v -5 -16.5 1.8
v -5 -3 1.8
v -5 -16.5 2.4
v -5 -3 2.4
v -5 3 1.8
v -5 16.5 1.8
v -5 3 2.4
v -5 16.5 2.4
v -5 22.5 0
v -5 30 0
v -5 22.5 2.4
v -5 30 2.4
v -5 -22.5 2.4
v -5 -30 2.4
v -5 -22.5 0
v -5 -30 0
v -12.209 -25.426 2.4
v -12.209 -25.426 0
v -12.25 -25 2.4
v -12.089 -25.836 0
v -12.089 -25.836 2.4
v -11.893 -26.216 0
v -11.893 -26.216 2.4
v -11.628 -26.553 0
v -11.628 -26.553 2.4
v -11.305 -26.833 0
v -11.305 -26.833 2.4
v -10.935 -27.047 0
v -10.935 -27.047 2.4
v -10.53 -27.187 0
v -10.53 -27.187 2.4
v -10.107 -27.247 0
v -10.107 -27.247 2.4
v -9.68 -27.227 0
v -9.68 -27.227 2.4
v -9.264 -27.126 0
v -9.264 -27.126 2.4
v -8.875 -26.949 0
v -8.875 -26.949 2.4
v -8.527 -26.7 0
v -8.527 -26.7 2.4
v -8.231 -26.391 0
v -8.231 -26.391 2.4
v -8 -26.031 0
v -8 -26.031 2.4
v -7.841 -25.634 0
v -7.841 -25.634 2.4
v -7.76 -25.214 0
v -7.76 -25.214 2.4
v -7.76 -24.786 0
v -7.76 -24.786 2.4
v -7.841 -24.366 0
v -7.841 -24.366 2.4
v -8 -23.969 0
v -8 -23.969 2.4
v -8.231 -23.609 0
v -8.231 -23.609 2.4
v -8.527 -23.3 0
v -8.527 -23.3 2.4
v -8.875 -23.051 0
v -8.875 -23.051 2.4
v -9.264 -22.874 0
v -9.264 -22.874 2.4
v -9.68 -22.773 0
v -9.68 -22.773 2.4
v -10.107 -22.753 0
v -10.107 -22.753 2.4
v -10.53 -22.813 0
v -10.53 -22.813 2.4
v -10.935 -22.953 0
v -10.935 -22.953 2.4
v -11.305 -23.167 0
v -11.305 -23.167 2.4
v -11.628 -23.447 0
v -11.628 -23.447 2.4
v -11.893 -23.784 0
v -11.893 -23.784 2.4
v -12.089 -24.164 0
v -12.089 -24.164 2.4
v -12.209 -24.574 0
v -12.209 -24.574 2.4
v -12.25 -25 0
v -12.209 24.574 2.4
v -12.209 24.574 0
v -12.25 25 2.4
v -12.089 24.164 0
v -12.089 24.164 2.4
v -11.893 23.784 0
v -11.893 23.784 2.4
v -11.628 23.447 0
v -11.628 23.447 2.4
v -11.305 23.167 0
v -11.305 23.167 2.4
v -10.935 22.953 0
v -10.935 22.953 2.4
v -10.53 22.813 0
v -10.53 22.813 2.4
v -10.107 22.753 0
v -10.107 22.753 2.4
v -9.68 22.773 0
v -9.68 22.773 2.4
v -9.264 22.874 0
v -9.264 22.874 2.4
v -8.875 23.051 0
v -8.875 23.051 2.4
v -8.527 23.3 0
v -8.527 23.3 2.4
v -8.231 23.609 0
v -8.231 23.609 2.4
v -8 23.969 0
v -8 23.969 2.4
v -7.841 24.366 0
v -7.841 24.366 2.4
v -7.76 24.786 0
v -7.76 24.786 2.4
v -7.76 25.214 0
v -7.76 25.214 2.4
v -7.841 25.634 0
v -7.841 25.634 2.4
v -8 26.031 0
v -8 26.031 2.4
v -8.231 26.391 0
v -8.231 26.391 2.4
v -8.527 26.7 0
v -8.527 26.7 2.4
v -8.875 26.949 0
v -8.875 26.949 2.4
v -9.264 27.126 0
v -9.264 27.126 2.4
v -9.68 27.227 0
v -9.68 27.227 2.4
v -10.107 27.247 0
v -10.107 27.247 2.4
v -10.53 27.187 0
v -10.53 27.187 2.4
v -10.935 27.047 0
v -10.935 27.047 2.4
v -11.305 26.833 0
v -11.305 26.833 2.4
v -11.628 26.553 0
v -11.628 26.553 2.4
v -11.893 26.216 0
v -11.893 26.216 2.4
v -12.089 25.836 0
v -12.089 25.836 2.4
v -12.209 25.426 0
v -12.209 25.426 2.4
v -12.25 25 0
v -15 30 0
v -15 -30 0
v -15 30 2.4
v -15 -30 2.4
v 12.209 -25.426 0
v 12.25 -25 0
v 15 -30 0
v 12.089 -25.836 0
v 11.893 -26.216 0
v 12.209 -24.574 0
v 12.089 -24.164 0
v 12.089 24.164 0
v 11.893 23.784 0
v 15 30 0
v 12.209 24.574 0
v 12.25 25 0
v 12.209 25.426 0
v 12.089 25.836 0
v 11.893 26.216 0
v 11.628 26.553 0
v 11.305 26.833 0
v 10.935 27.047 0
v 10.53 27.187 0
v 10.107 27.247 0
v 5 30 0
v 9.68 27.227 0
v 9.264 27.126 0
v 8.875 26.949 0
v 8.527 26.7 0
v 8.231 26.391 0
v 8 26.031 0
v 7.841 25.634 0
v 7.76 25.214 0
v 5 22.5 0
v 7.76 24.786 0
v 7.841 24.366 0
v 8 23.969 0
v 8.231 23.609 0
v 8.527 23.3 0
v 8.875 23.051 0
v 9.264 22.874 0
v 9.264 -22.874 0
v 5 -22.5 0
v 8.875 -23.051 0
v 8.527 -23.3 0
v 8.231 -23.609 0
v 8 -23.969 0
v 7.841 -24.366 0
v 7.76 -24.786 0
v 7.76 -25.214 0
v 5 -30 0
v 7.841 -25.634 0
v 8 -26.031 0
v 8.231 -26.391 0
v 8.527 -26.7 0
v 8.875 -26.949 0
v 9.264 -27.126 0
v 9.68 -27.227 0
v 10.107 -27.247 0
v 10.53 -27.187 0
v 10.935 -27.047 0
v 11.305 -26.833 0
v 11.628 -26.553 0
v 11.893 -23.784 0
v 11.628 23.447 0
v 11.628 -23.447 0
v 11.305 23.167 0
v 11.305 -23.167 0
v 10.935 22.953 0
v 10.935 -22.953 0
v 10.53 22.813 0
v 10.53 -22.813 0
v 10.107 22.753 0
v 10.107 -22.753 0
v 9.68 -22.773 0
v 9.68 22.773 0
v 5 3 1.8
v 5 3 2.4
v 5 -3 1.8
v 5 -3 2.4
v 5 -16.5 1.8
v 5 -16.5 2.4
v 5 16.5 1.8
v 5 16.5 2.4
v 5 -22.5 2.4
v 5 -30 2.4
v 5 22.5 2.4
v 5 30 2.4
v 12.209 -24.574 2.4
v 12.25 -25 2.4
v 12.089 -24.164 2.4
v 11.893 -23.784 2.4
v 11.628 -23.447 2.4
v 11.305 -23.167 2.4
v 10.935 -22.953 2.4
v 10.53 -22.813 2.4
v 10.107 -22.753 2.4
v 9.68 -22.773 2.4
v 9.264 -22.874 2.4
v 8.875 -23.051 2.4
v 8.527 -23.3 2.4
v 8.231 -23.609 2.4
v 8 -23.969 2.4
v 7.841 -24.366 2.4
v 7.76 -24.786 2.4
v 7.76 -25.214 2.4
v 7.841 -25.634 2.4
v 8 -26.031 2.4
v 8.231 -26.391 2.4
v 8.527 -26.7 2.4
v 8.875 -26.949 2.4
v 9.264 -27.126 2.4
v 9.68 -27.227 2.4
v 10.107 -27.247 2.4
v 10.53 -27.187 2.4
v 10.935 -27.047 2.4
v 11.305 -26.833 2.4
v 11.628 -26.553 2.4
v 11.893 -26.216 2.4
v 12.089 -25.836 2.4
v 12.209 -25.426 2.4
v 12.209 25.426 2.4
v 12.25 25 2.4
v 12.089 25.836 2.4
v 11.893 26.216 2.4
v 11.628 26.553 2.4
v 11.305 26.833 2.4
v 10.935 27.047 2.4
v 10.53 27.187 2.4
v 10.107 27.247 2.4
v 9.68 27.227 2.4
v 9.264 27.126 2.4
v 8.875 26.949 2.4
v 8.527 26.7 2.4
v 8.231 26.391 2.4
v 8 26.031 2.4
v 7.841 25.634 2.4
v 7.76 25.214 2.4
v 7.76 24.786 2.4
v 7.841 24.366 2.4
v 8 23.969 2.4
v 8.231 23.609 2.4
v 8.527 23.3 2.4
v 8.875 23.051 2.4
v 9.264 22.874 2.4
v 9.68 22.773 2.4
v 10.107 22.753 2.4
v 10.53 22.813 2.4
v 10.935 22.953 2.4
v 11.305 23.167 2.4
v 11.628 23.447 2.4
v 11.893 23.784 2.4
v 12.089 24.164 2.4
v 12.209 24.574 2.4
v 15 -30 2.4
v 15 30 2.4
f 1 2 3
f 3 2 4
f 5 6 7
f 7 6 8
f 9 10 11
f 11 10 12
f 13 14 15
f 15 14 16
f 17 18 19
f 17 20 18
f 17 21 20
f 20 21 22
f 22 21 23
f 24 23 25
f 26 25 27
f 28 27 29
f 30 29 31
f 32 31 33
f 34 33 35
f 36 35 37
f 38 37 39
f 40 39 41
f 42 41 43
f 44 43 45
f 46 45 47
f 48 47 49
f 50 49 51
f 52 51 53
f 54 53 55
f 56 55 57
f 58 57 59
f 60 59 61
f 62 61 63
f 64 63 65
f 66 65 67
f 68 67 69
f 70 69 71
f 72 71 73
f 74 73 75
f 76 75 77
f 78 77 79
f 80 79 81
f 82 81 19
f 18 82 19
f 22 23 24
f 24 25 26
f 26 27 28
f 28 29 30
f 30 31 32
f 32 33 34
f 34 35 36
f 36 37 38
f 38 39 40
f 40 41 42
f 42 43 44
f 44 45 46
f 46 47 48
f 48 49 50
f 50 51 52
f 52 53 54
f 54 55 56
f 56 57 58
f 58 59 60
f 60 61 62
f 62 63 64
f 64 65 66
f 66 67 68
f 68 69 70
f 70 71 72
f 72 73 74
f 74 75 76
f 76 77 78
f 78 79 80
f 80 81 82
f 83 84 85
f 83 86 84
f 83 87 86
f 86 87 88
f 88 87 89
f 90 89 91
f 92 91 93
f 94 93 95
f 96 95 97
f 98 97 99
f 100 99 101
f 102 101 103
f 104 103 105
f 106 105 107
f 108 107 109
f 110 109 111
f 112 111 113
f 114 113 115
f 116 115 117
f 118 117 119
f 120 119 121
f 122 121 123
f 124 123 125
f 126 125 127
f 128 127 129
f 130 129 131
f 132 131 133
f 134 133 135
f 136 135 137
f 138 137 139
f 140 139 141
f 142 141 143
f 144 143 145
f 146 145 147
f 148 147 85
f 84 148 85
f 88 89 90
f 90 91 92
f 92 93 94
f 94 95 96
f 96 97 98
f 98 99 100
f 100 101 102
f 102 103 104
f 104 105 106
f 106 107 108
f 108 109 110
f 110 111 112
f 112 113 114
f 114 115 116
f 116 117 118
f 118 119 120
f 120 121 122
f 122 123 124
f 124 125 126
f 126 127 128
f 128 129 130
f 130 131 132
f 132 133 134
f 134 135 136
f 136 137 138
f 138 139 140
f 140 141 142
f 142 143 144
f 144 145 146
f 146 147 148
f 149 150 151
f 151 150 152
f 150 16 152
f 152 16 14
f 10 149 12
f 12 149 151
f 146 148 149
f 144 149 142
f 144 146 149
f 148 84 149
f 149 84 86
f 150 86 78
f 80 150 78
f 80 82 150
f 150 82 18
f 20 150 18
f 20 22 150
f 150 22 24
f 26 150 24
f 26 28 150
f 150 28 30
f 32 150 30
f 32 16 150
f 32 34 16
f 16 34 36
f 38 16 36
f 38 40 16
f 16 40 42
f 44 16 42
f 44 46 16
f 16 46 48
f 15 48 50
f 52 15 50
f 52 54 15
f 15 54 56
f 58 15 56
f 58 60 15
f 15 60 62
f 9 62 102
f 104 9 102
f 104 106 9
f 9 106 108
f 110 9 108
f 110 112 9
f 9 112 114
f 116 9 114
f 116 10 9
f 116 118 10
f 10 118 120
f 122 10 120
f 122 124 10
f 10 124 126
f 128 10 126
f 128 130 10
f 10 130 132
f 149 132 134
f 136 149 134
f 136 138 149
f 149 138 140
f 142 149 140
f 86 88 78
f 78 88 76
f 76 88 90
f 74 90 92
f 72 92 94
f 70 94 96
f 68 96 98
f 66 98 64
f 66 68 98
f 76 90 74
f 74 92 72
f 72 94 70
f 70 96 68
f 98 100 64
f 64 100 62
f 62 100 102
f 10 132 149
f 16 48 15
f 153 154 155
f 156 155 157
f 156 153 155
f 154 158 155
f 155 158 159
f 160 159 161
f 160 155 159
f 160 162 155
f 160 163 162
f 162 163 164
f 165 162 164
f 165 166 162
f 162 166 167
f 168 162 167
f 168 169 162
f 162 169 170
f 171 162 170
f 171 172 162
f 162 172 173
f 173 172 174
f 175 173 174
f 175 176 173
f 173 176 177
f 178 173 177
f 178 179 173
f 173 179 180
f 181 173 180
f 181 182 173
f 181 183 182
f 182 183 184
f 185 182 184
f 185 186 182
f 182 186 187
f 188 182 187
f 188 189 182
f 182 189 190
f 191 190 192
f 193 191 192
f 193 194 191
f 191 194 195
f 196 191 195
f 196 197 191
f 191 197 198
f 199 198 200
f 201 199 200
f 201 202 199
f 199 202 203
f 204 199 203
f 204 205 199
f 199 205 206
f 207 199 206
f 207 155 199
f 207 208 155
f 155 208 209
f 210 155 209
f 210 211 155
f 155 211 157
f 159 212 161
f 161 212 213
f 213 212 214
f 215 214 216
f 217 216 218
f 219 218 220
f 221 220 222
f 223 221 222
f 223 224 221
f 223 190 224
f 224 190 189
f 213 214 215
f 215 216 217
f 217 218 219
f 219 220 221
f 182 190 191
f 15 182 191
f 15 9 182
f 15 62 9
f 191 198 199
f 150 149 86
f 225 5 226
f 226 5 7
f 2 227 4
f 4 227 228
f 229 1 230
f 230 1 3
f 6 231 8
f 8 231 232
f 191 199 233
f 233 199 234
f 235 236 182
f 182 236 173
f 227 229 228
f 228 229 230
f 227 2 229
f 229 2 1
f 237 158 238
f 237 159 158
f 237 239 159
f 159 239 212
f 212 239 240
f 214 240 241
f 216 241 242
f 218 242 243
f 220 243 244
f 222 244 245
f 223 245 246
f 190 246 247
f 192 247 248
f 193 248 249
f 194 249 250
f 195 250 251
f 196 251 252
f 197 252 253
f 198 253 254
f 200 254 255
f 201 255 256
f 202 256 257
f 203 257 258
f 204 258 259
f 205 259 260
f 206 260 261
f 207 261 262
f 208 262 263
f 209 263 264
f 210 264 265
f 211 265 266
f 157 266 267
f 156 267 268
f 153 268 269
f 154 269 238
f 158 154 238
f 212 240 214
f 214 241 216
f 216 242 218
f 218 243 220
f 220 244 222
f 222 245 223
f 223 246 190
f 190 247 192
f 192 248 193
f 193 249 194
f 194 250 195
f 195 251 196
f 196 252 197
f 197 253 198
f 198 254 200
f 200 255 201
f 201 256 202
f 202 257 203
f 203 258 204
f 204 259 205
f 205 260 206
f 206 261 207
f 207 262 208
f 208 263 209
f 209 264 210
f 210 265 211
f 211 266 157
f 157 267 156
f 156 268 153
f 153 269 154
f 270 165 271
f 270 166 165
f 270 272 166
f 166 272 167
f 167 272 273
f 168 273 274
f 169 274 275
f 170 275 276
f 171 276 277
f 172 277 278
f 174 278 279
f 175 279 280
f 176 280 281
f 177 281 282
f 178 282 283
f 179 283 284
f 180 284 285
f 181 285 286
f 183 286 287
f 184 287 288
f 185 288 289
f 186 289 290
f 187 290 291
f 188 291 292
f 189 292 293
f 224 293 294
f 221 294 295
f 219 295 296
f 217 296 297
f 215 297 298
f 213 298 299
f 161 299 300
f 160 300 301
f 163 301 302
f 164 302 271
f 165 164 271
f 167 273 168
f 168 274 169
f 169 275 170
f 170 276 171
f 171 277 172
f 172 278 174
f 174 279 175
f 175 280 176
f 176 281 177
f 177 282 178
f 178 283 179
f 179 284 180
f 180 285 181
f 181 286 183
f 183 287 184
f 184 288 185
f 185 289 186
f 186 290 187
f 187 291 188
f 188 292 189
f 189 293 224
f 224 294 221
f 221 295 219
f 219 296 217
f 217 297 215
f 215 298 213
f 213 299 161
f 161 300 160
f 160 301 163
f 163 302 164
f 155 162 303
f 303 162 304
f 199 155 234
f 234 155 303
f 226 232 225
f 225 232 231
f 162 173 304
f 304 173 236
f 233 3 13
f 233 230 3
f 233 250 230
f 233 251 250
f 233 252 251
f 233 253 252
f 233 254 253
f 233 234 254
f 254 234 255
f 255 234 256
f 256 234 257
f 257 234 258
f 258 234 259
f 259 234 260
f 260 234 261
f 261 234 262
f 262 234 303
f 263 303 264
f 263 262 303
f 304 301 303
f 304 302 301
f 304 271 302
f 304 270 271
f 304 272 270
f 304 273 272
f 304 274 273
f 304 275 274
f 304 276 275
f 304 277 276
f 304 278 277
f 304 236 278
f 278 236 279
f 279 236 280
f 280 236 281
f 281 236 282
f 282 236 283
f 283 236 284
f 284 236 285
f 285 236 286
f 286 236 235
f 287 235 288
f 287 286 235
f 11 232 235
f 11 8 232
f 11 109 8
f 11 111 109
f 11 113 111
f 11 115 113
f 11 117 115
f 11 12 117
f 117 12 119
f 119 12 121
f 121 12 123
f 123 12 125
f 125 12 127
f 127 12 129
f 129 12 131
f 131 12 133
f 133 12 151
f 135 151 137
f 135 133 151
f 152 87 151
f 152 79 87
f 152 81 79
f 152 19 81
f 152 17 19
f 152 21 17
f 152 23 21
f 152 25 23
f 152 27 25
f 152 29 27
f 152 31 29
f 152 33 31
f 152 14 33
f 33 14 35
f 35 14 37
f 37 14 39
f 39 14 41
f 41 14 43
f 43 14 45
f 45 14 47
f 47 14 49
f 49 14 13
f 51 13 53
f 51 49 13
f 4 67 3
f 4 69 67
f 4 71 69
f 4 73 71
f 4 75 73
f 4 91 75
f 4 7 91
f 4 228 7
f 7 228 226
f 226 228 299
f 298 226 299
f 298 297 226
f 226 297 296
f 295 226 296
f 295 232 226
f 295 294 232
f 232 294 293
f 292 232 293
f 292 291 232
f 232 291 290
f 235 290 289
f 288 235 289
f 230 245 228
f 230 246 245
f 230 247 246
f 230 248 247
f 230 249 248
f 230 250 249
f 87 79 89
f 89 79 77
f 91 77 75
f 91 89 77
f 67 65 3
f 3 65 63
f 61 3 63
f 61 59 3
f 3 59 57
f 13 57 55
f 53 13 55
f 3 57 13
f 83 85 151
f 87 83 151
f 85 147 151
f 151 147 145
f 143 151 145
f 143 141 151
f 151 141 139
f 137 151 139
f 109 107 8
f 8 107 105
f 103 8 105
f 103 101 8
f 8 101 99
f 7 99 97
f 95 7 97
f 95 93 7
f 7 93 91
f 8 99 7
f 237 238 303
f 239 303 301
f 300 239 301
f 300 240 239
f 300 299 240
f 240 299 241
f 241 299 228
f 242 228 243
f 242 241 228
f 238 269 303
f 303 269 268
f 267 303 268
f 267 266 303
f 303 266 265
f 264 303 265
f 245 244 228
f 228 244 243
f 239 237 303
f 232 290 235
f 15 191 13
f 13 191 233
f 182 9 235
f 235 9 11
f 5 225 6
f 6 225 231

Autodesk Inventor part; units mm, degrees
ref_plane "YZ Plane" through (0, 0, 0) normal (1, 0, 0) x (0, 1, 0)
ref_plane "XZ Plane" through (0, 0, 0) normal (0, 1, 0) x (-1, 0, 0)
ref_plane "XY Plane" through (0, 0, 0) normal (0, 0, 1) x (1, 0, 0)
sketch "Sketch1" plane through (0, 0, 0) normal (0, 0, 1) x (1, 0, 0)
  line L0 (0, 35.9415) -> (0, -22.75) construction
  line L1 (5, 30) -> (15, 30)
  line L2 (15, 30) -> (15, -30)
  line L3 (15, -30) -> (5, -30)
  line L4 (5, -30) -> (5, 30)
  circle A0 centre (10, 25) radius 2.25
  circle A1 centre (10, -25) radius 2.25
  line L5 (-5, 22.5) -> (5, 22.5)
  line L6 (5, 22.5) -> (5, -22.5)
  line L7 (5, -22.5) -> (-5, -22.5)
  line L8 (-5, -22.5) -> (-5, 22.5)
  line L9 (-5, 22.5) -> (5, 22.5)
  line L10 (5, 22.5) -> (5, 16.5)
  line L11 (5, 16.5) -> (-5, 16.5)
  line L12 (-5, 16.5) -> (-5, 22.5)
  line L13 (-5, -22.5) -> (5, -22.5)
  line L14 (5, -22.5) -> (5, -16.5)
  line L15 (5, -16.5) -> (-5, -16.5)
  line L16 (-5, -16.5) -> (-5, -22.5)
  line L17 (-5, 3) -> (5, 3)
  line L18 (5, 3) -> (5, -3)
  line L19 (5, -3) -> (-5, -3)
  line L20 (-5, -3) -> (-5, 3)
  point P0 (0, 0)
  point P1 (15, 0)
  point P2 (5, 0)
  point P3 (0, 22.5)
  point P4 (5, 0)
  point P5 (5, 0)
  dimension "d28" = 60
  dimension "d29" = 4.5
  dimension "d30" = 4.5
  dimension "d31" = 5
  dimension "d32" = 5
  dimension "d33" = 10
  dimension "d36" = 10
  dimension "d37" = 45
  dimension "d38" = 5
  dimension "d39" = 5
  dimension "d42" = 6
  dimension "d43" = 6
  dimension "d44" = 6
extrude "Extrusion3" add sketch "Sketch1" along normal blind 1.8 contours L4 L11 L8 L5 | L4 L17 L8 L11 | L4 L19 L8 L17 | L7 L8 L15 L4 | L4 L15 L8 L19
extrude "Extrusion5" add sketch "Sketch1" along normal blind 2.4 contours L1 L2 L3 L4
extrude "Extrusion6" add sketch "Sketch1" along normal blind 2.4 contours L4 L11 L8 L5 | L4 L19 L8 L17 | L7 L8 L15 L4
mirror "Mirror2" about plane through (0, 0, 0) normal (1, 0, 0) of "Extrusion5", "Extrusion6"
equation "\"d29\" = screw"
equation "\"d30\" = screw"
equation "\"screw\" = 4.5"
properties part number "FoldLink" material "Rubber, Silicone"
